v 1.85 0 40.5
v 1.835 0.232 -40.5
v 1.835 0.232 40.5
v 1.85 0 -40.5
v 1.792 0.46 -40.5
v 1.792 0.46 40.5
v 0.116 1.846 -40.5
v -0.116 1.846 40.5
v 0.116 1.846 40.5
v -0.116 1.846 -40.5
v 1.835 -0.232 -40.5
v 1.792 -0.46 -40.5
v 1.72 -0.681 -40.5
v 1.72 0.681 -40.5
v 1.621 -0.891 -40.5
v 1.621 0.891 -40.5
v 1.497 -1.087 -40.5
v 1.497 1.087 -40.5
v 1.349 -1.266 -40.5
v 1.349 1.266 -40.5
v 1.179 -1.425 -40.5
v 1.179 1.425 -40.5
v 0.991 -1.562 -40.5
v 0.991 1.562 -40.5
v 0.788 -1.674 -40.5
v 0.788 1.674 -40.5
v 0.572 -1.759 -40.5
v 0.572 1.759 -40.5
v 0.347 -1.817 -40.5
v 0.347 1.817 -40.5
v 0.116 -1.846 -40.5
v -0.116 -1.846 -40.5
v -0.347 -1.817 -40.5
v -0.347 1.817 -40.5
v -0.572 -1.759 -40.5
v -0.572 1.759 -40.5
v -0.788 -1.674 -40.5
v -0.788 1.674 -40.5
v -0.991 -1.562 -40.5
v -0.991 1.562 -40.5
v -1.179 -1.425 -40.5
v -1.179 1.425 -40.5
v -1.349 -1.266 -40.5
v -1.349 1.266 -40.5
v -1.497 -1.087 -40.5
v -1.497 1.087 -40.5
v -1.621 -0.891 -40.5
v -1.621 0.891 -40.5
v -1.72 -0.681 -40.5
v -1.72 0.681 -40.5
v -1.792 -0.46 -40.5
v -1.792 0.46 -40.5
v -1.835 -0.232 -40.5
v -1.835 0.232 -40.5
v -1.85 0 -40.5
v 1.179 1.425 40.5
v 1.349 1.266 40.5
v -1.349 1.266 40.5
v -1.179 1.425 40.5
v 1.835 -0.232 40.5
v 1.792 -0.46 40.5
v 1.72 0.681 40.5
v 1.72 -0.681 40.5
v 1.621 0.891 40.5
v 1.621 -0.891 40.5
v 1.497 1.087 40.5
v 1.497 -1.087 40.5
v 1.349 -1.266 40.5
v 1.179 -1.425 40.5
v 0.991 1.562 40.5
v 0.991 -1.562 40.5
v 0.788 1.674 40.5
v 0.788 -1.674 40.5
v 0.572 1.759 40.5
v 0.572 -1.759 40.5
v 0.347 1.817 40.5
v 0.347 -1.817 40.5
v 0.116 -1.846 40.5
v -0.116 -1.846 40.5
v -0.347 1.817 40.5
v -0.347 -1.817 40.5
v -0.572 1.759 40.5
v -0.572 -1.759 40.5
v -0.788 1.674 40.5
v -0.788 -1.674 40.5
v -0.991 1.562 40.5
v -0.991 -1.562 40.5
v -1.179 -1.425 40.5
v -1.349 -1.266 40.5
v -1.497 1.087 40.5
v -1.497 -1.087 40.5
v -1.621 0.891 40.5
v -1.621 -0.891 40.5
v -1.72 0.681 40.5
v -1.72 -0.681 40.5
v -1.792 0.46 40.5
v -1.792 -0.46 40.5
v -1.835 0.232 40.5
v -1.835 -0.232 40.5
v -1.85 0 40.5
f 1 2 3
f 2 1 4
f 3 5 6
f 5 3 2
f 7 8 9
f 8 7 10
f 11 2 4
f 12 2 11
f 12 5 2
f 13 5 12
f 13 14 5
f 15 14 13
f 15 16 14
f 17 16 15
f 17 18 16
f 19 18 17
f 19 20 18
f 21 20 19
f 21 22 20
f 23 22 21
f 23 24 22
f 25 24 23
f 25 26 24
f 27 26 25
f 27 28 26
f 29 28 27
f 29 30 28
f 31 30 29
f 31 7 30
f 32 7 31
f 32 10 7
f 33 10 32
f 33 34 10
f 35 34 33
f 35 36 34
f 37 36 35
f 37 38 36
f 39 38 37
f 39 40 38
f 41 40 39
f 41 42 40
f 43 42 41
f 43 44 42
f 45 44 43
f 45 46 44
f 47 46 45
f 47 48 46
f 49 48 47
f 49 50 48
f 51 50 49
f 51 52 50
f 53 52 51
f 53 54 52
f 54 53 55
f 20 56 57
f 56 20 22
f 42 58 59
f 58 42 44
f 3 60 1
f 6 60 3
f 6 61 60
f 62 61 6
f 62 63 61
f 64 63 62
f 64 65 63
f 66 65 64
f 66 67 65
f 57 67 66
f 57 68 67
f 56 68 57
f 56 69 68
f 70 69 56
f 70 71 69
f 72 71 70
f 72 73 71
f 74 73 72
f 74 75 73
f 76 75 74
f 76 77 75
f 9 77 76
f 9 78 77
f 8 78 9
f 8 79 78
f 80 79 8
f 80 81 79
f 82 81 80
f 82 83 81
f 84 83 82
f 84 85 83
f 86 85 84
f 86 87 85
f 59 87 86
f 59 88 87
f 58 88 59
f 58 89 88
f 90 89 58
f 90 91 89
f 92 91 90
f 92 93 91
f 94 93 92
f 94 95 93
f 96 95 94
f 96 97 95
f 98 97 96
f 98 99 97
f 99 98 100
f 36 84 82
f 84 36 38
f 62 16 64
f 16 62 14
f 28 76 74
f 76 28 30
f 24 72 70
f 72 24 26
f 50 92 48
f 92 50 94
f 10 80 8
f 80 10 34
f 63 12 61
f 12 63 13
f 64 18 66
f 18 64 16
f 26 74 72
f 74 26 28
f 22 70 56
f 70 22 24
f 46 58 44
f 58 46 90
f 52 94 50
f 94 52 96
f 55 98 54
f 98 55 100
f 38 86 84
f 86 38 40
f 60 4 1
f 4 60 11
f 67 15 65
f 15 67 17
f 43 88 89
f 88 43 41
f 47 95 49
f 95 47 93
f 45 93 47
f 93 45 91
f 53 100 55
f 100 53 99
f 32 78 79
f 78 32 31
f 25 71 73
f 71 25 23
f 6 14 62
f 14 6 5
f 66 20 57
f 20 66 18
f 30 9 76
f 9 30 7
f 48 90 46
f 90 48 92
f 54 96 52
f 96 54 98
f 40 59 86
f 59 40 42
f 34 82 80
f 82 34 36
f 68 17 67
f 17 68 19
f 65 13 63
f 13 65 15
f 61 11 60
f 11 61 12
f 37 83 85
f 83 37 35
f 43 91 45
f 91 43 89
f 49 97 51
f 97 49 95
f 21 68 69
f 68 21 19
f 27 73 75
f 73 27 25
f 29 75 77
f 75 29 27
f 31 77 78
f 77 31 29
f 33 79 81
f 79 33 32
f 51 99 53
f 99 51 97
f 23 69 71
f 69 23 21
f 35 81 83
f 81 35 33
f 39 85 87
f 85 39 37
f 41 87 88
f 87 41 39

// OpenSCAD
$fn = 50;


difference() {
	union() {
		translate(v = [0, 0, -40.5000000000]) {
			cylinder(h = 81, r = 1.8500000000);
		}
	}
	union() {
		translate(v = [0, 0, -100.0000000000]) {
			cylinder(h = 200, r = 0);
		}
	}
}
